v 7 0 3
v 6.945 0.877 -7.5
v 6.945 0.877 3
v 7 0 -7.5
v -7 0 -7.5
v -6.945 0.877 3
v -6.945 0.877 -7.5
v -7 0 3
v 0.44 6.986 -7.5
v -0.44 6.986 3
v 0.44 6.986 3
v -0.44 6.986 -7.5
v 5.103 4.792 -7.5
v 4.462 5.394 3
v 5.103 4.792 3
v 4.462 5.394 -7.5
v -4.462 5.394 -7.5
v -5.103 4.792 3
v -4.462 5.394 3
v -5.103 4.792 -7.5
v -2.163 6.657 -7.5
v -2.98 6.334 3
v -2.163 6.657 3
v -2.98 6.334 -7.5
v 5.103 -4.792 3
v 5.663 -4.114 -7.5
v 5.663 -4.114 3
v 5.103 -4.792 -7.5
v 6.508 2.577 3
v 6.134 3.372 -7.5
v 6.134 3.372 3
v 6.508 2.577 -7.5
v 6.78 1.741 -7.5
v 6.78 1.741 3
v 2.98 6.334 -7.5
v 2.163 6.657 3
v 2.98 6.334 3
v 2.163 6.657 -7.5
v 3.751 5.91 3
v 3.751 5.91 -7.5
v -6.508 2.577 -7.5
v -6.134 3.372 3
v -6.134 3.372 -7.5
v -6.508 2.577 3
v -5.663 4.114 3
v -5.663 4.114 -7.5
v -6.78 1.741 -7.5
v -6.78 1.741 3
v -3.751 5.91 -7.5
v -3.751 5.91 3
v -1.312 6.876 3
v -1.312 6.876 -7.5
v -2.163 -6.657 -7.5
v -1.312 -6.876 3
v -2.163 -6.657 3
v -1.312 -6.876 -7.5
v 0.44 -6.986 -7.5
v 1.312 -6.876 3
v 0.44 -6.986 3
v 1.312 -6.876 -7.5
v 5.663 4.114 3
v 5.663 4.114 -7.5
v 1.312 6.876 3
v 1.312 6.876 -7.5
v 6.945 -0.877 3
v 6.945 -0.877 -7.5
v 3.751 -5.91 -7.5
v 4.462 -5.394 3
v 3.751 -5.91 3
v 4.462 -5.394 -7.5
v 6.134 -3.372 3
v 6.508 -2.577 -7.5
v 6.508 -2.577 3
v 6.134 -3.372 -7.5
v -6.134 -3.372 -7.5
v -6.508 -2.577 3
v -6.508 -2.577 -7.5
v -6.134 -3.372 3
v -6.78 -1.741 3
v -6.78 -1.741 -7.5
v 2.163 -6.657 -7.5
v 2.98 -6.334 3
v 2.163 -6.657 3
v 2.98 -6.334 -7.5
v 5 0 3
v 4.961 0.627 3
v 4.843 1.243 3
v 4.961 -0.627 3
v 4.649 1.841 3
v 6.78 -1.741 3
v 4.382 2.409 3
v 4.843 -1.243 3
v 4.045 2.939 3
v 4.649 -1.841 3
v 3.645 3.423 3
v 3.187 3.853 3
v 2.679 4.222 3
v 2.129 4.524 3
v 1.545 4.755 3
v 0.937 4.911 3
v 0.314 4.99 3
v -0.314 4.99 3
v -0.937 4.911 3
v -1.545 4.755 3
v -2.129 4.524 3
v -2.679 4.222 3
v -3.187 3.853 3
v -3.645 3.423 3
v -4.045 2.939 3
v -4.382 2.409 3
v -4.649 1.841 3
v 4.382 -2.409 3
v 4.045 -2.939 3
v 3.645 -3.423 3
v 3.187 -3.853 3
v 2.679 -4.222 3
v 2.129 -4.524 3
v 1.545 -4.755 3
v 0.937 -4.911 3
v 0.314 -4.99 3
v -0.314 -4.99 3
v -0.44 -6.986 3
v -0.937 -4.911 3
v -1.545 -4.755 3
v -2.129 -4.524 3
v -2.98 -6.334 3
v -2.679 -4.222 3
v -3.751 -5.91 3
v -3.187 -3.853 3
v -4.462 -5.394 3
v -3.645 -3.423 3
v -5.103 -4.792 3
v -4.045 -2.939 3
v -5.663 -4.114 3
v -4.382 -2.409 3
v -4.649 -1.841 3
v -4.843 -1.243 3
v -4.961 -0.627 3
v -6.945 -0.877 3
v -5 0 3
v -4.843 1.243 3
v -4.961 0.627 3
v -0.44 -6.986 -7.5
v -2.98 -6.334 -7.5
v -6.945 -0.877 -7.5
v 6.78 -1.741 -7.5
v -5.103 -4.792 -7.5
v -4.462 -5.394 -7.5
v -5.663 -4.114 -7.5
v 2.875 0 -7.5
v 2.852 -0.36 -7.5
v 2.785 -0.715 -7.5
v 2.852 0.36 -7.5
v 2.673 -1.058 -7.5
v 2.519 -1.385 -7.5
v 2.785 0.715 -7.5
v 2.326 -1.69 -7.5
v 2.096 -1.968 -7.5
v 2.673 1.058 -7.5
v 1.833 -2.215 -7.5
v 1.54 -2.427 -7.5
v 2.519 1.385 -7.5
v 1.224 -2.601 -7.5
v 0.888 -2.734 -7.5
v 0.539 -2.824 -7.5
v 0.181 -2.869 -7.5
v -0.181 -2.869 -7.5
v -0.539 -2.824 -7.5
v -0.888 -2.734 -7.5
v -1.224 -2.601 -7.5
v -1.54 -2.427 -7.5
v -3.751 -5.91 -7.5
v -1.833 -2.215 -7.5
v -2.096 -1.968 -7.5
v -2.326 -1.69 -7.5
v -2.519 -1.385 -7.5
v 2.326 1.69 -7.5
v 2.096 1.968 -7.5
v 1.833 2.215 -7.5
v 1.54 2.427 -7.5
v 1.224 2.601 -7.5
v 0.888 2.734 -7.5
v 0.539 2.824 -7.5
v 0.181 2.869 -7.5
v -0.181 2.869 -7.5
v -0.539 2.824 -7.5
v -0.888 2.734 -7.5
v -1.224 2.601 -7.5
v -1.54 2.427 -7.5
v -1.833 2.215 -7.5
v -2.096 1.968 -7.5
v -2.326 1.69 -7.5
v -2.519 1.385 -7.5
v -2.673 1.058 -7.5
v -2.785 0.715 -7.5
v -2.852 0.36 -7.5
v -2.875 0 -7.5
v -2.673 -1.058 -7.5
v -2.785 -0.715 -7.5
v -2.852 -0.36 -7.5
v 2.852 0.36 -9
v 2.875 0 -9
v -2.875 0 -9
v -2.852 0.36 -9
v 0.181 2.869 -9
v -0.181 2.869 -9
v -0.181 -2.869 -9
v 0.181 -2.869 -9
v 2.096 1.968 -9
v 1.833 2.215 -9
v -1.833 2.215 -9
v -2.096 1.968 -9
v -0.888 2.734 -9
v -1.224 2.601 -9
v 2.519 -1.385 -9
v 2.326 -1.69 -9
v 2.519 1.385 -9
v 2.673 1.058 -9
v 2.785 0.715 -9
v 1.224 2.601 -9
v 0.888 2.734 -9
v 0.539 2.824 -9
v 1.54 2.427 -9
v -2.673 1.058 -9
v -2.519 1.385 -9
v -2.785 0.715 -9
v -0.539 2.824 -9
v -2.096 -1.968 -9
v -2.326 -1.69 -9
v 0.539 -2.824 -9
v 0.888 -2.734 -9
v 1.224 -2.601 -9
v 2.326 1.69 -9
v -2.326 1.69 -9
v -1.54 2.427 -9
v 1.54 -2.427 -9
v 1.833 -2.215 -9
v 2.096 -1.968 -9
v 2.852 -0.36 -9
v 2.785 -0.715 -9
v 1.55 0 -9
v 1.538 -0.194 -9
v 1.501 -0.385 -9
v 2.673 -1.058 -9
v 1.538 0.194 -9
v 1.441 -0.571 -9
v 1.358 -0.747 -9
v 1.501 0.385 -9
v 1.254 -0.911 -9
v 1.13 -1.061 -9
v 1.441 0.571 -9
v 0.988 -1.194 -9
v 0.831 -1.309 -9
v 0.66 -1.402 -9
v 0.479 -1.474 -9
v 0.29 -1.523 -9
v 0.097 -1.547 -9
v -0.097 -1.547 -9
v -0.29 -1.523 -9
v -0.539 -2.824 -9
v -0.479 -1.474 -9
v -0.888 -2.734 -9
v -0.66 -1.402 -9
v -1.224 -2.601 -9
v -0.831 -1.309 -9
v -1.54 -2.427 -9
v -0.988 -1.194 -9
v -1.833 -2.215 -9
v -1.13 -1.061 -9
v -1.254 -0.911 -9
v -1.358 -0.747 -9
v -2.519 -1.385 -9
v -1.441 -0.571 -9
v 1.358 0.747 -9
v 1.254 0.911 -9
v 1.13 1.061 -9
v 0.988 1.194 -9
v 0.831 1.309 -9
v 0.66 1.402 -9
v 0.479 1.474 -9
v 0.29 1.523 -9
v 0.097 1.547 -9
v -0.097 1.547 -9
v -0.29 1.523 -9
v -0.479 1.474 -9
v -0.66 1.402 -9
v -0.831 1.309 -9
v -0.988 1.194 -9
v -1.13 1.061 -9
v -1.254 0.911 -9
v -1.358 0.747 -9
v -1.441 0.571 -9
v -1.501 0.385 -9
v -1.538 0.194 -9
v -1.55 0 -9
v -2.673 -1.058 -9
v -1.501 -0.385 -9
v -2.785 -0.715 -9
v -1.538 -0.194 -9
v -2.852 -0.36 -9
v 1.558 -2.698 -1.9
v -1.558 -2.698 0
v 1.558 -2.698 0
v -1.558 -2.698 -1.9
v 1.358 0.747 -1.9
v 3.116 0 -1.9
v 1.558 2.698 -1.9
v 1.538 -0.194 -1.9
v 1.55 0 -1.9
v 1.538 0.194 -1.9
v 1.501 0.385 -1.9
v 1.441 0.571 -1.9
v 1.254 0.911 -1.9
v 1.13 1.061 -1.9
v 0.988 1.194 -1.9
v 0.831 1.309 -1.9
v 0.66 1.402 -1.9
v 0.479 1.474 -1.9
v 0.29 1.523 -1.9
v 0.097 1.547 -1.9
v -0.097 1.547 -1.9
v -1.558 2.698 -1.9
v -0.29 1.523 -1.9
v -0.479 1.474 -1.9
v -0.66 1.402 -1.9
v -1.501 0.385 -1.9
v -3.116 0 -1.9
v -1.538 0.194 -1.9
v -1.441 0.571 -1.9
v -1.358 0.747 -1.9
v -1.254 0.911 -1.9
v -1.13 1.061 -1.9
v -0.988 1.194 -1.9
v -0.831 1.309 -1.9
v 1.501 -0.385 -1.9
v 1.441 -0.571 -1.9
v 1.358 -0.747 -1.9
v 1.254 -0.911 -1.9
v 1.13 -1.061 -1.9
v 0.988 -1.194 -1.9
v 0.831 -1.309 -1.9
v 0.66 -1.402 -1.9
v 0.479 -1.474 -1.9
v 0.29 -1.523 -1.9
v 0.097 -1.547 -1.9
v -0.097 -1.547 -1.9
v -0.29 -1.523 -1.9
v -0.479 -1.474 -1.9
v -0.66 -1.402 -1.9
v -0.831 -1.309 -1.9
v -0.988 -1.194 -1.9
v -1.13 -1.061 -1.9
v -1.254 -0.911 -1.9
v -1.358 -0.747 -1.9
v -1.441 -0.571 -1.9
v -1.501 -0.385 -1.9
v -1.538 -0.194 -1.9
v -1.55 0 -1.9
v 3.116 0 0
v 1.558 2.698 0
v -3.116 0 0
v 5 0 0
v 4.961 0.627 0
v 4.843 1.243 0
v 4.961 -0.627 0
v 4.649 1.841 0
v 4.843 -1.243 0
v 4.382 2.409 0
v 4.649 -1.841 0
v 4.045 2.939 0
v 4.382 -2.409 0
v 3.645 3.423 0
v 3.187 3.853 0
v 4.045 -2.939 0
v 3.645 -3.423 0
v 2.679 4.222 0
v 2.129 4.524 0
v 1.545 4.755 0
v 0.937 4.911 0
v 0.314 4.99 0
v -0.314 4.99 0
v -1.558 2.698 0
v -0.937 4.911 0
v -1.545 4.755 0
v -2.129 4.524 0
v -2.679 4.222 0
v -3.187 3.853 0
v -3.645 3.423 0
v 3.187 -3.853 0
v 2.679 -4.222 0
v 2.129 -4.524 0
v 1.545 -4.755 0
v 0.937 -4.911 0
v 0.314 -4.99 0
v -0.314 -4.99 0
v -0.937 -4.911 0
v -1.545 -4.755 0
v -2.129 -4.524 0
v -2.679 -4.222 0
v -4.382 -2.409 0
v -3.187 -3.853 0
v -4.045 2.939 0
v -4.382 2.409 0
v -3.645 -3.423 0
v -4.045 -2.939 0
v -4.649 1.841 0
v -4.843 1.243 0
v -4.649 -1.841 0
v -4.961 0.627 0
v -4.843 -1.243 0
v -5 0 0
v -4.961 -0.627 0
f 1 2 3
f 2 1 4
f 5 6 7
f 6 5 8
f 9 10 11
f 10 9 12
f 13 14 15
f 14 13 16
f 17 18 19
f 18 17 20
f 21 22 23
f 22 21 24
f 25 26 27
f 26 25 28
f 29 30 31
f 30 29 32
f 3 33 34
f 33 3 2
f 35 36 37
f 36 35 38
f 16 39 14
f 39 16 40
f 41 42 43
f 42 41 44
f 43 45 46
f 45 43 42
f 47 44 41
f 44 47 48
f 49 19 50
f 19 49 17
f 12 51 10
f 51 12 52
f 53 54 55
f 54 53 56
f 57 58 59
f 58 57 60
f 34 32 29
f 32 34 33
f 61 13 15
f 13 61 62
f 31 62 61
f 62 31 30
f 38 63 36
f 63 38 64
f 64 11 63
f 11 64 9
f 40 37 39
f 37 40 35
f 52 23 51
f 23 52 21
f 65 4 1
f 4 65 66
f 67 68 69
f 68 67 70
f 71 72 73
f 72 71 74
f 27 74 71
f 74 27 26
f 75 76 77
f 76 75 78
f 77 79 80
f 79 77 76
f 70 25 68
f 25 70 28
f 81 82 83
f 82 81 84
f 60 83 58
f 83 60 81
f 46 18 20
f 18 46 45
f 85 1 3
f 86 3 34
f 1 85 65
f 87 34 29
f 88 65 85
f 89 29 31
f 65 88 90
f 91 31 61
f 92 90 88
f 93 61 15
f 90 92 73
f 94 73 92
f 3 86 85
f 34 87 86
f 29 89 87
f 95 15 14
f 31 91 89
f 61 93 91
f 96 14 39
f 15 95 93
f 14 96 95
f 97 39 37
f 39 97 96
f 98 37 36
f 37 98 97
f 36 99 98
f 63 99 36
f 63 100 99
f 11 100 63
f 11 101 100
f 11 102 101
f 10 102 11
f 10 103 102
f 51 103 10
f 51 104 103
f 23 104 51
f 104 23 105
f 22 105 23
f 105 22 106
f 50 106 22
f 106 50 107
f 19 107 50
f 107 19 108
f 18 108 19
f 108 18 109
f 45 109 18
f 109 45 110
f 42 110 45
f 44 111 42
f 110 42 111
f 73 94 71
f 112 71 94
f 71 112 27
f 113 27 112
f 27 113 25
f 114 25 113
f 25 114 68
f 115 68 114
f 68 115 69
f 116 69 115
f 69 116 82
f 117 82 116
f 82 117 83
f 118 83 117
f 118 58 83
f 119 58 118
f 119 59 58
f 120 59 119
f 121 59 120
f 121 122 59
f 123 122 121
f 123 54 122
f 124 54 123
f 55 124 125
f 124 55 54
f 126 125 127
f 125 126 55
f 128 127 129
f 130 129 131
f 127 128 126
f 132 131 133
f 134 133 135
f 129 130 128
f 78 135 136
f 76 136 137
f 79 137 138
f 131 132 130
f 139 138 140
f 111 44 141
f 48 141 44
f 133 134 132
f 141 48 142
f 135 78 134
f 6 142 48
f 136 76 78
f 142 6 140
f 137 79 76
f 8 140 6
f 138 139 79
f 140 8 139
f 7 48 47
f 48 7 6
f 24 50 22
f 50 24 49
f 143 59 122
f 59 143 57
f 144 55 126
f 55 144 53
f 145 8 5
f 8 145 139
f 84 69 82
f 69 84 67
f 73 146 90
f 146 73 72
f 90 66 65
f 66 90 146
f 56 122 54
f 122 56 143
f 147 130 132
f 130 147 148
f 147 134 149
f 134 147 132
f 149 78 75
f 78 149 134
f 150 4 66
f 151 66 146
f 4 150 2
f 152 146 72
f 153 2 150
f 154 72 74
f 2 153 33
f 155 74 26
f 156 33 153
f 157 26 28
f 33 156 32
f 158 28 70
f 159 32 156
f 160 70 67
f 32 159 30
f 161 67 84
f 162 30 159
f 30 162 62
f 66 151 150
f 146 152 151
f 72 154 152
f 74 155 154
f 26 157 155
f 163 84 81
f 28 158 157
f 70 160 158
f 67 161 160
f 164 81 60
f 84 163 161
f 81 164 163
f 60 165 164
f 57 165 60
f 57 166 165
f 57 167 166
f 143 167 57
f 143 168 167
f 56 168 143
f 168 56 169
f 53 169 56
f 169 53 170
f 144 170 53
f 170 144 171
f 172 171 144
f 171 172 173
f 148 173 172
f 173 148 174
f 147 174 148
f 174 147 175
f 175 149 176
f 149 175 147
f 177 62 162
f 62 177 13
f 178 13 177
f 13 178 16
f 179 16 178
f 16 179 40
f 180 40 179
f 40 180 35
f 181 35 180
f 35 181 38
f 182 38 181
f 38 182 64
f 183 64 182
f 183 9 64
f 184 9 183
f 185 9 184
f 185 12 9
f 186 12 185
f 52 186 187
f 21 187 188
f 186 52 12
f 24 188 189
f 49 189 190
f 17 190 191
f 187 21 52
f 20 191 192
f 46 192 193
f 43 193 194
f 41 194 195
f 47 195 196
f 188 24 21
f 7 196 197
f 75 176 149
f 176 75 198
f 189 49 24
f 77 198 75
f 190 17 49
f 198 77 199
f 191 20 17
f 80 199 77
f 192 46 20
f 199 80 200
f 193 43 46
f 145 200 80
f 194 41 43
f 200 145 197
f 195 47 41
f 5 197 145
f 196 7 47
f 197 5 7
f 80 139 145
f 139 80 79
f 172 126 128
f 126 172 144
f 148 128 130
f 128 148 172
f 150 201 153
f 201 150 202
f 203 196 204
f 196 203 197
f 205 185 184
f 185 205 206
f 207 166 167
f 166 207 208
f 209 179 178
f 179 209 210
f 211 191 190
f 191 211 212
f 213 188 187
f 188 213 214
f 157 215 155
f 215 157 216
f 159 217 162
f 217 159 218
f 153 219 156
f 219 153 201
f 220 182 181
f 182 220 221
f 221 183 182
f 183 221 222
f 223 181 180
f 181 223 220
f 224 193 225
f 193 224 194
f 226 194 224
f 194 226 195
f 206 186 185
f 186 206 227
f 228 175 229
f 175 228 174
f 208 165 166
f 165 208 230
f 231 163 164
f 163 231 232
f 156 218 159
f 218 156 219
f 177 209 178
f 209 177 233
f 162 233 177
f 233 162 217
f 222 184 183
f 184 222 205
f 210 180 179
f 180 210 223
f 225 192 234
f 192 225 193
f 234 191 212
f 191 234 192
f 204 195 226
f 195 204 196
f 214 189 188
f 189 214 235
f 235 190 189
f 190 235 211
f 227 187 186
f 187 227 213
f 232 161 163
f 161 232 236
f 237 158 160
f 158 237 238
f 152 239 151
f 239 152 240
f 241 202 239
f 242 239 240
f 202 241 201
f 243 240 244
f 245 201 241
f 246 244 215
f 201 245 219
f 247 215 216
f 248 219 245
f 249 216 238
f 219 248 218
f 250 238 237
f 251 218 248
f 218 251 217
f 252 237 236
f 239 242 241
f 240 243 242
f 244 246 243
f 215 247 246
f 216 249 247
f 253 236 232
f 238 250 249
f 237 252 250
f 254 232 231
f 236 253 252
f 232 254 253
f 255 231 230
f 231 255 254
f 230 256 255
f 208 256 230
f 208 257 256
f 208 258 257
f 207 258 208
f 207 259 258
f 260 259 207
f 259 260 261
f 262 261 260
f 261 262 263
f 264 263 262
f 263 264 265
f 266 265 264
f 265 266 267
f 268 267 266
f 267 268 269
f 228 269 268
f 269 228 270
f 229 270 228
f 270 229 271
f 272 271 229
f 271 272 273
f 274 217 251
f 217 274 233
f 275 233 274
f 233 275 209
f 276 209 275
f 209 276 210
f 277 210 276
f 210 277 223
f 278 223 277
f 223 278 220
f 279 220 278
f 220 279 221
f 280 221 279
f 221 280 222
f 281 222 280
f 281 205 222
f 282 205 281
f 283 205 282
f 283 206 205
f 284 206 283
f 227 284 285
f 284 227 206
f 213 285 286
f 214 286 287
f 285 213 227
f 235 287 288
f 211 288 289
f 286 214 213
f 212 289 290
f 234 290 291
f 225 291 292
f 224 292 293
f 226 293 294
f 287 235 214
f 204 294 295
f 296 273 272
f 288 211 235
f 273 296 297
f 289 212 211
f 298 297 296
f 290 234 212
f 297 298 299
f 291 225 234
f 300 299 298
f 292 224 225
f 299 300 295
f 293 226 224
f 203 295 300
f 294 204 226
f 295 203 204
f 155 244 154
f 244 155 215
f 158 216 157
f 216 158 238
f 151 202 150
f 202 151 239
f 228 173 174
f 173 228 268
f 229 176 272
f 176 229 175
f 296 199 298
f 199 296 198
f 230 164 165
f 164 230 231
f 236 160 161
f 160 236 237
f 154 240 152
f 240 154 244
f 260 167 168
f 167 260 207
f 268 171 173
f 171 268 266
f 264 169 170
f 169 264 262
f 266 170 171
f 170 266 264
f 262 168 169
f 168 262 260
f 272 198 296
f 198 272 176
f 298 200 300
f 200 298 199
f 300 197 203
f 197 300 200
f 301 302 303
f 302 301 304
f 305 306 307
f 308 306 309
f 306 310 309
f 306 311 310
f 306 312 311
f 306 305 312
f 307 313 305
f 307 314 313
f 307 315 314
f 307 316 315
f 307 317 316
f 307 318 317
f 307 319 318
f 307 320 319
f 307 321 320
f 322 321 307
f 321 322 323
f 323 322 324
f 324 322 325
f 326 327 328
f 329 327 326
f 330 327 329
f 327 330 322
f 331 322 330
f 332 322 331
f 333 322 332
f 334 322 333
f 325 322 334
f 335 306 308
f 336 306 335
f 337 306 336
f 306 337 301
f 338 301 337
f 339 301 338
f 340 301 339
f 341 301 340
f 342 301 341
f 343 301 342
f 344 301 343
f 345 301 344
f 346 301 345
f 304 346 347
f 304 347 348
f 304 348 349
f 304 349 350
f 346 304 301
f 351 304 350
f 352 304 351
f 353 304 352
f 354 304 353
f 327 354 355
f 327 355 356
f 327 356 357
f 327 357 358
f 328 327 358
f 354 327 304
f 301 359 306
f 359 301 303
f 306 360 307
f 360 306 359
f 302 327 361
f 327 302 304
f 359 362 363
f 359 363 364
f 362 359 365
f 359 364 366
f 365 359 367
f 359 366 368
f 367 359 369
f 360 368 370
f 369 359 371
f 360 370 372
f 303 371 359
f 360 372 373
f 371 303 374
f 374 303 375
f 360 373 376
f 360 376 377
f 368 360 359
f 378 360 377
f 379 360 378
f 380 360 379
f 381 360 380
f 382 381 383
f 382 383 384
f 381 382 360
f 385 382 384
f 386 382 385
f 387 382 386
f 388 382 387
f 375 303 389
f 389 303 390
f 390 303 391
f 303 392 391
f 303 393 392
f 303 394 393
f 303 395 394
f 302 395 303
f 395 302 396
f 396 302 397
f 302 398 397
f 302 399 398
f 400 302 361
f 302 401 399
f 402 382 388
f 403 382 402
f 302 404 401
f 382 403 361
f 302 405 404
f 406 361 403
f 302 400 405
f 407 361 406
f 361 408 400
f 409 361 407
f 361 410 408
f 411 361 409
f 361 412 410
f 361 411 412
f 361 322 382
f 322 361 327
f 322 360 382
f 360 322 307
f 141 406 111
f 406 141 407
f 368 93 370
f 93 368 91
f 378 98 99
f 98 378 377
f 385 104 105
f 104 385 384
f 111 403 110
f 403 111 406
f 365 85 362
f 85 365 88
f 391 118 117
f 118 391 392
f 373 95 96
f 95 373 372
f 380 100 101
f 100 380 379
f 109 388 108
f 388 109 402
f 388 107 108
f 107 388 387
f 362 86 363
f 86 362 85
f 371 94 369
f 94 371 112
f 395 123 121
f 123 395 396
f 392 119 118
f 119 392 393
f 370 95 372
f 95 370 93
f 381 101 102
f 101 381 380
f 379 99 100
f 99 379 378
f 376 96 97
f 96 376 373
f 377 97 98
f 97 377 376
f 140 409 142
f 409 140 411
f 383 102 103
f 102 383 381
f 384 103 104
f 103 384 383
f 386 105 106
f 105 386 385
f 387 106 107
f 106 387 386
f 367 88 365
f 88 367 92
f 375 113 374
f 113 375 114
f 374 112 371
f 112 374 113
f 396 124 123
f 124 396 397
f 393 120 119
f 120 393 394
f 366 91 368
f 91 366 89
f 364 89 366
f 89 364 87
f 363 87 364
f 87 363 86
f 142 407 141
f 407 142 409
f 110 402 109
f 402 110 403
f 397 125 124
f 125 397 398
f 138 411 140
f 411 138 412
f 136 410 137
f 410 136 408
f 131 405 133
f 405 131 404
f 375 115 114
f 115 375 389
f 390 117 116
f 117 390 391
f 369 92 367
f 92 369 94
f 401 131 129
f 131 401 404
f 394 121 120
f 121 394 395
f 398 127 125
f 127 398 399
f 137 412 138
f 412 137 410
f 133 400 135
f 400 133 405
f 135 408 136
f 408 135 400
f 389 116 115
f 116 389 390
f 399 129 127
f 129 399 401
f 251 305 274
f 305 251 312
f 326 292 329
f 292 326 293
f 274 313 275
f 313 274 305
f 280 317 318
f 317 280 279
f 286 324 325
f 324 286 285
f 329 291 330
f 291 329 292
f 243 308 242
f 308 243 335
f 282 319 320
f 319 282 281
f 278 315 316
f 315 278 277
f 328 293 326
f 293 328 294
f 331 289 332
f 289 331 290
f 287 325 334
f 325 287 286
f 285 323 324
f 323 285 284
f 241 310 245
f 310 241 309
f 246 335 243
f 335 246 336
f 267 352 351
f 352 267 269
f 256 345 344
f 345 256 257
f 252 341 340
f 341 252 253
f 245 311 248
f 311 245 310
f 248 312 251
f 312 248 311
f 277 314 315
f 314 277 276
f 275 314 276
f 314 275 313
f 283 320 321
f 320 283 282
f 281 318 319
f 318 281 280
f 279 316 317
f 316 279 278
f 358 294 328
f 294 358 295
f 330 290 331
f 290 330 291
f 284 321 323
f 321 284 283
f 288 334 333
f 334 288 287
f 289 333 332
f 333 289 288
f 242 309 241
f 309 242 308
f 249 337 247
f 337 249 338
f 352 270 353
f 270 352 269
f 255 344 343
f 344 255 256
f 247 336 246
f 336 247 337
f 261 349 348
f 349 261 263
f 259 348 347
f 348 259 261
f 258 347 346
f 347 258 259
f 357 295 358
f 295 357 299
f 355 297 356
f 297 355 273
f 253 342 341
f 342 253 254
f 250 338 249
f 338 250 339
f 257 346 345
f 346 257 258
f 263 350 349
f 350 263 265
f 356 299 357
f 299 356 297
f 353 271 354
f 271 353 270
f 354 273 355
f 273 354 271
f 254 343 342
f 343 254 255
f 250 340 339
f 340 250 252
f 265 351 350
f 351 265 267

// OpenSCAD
$fn = 50;


difference() {
	union() {
		translate(v = [0, 0, -7.5000000000]) {
			cylinder(h = 10.5000000000, r = 7.0000000000);
		}
		#translate(v = [0, 0, -9.0000000000]) {
			cylinder(h = 9, r = 2.8750000000);
		}
	}
	union() {
		translate(v = [0, 0, 0]) {
			rotate(a = [0, 0, 0]) {
				difference() {
					union() {
						translate(v = [0, 0, -1.9000000000]) {
							linear_extrude(height = 1.9000000000) {
								polygon(points = [[3.1158000000, 0.0000000000], [1.5579000000, 2.6983619531], [-1.5579000000, 2.6983619531], [-3.1158000000, 0.0000000000], [-1.5579000000, -2.6983619531], [1.5579000000, -2.6983619531]]);
							}
						}
					}
					union();
				}
			}
		}
		#cylinder(h = 3, r = 5.0000000000);
		#translate(v = [0, 0, -100.0000000000]) {
			cylinder(h = 200, r = 1.5500000000);
		}
	}
}
